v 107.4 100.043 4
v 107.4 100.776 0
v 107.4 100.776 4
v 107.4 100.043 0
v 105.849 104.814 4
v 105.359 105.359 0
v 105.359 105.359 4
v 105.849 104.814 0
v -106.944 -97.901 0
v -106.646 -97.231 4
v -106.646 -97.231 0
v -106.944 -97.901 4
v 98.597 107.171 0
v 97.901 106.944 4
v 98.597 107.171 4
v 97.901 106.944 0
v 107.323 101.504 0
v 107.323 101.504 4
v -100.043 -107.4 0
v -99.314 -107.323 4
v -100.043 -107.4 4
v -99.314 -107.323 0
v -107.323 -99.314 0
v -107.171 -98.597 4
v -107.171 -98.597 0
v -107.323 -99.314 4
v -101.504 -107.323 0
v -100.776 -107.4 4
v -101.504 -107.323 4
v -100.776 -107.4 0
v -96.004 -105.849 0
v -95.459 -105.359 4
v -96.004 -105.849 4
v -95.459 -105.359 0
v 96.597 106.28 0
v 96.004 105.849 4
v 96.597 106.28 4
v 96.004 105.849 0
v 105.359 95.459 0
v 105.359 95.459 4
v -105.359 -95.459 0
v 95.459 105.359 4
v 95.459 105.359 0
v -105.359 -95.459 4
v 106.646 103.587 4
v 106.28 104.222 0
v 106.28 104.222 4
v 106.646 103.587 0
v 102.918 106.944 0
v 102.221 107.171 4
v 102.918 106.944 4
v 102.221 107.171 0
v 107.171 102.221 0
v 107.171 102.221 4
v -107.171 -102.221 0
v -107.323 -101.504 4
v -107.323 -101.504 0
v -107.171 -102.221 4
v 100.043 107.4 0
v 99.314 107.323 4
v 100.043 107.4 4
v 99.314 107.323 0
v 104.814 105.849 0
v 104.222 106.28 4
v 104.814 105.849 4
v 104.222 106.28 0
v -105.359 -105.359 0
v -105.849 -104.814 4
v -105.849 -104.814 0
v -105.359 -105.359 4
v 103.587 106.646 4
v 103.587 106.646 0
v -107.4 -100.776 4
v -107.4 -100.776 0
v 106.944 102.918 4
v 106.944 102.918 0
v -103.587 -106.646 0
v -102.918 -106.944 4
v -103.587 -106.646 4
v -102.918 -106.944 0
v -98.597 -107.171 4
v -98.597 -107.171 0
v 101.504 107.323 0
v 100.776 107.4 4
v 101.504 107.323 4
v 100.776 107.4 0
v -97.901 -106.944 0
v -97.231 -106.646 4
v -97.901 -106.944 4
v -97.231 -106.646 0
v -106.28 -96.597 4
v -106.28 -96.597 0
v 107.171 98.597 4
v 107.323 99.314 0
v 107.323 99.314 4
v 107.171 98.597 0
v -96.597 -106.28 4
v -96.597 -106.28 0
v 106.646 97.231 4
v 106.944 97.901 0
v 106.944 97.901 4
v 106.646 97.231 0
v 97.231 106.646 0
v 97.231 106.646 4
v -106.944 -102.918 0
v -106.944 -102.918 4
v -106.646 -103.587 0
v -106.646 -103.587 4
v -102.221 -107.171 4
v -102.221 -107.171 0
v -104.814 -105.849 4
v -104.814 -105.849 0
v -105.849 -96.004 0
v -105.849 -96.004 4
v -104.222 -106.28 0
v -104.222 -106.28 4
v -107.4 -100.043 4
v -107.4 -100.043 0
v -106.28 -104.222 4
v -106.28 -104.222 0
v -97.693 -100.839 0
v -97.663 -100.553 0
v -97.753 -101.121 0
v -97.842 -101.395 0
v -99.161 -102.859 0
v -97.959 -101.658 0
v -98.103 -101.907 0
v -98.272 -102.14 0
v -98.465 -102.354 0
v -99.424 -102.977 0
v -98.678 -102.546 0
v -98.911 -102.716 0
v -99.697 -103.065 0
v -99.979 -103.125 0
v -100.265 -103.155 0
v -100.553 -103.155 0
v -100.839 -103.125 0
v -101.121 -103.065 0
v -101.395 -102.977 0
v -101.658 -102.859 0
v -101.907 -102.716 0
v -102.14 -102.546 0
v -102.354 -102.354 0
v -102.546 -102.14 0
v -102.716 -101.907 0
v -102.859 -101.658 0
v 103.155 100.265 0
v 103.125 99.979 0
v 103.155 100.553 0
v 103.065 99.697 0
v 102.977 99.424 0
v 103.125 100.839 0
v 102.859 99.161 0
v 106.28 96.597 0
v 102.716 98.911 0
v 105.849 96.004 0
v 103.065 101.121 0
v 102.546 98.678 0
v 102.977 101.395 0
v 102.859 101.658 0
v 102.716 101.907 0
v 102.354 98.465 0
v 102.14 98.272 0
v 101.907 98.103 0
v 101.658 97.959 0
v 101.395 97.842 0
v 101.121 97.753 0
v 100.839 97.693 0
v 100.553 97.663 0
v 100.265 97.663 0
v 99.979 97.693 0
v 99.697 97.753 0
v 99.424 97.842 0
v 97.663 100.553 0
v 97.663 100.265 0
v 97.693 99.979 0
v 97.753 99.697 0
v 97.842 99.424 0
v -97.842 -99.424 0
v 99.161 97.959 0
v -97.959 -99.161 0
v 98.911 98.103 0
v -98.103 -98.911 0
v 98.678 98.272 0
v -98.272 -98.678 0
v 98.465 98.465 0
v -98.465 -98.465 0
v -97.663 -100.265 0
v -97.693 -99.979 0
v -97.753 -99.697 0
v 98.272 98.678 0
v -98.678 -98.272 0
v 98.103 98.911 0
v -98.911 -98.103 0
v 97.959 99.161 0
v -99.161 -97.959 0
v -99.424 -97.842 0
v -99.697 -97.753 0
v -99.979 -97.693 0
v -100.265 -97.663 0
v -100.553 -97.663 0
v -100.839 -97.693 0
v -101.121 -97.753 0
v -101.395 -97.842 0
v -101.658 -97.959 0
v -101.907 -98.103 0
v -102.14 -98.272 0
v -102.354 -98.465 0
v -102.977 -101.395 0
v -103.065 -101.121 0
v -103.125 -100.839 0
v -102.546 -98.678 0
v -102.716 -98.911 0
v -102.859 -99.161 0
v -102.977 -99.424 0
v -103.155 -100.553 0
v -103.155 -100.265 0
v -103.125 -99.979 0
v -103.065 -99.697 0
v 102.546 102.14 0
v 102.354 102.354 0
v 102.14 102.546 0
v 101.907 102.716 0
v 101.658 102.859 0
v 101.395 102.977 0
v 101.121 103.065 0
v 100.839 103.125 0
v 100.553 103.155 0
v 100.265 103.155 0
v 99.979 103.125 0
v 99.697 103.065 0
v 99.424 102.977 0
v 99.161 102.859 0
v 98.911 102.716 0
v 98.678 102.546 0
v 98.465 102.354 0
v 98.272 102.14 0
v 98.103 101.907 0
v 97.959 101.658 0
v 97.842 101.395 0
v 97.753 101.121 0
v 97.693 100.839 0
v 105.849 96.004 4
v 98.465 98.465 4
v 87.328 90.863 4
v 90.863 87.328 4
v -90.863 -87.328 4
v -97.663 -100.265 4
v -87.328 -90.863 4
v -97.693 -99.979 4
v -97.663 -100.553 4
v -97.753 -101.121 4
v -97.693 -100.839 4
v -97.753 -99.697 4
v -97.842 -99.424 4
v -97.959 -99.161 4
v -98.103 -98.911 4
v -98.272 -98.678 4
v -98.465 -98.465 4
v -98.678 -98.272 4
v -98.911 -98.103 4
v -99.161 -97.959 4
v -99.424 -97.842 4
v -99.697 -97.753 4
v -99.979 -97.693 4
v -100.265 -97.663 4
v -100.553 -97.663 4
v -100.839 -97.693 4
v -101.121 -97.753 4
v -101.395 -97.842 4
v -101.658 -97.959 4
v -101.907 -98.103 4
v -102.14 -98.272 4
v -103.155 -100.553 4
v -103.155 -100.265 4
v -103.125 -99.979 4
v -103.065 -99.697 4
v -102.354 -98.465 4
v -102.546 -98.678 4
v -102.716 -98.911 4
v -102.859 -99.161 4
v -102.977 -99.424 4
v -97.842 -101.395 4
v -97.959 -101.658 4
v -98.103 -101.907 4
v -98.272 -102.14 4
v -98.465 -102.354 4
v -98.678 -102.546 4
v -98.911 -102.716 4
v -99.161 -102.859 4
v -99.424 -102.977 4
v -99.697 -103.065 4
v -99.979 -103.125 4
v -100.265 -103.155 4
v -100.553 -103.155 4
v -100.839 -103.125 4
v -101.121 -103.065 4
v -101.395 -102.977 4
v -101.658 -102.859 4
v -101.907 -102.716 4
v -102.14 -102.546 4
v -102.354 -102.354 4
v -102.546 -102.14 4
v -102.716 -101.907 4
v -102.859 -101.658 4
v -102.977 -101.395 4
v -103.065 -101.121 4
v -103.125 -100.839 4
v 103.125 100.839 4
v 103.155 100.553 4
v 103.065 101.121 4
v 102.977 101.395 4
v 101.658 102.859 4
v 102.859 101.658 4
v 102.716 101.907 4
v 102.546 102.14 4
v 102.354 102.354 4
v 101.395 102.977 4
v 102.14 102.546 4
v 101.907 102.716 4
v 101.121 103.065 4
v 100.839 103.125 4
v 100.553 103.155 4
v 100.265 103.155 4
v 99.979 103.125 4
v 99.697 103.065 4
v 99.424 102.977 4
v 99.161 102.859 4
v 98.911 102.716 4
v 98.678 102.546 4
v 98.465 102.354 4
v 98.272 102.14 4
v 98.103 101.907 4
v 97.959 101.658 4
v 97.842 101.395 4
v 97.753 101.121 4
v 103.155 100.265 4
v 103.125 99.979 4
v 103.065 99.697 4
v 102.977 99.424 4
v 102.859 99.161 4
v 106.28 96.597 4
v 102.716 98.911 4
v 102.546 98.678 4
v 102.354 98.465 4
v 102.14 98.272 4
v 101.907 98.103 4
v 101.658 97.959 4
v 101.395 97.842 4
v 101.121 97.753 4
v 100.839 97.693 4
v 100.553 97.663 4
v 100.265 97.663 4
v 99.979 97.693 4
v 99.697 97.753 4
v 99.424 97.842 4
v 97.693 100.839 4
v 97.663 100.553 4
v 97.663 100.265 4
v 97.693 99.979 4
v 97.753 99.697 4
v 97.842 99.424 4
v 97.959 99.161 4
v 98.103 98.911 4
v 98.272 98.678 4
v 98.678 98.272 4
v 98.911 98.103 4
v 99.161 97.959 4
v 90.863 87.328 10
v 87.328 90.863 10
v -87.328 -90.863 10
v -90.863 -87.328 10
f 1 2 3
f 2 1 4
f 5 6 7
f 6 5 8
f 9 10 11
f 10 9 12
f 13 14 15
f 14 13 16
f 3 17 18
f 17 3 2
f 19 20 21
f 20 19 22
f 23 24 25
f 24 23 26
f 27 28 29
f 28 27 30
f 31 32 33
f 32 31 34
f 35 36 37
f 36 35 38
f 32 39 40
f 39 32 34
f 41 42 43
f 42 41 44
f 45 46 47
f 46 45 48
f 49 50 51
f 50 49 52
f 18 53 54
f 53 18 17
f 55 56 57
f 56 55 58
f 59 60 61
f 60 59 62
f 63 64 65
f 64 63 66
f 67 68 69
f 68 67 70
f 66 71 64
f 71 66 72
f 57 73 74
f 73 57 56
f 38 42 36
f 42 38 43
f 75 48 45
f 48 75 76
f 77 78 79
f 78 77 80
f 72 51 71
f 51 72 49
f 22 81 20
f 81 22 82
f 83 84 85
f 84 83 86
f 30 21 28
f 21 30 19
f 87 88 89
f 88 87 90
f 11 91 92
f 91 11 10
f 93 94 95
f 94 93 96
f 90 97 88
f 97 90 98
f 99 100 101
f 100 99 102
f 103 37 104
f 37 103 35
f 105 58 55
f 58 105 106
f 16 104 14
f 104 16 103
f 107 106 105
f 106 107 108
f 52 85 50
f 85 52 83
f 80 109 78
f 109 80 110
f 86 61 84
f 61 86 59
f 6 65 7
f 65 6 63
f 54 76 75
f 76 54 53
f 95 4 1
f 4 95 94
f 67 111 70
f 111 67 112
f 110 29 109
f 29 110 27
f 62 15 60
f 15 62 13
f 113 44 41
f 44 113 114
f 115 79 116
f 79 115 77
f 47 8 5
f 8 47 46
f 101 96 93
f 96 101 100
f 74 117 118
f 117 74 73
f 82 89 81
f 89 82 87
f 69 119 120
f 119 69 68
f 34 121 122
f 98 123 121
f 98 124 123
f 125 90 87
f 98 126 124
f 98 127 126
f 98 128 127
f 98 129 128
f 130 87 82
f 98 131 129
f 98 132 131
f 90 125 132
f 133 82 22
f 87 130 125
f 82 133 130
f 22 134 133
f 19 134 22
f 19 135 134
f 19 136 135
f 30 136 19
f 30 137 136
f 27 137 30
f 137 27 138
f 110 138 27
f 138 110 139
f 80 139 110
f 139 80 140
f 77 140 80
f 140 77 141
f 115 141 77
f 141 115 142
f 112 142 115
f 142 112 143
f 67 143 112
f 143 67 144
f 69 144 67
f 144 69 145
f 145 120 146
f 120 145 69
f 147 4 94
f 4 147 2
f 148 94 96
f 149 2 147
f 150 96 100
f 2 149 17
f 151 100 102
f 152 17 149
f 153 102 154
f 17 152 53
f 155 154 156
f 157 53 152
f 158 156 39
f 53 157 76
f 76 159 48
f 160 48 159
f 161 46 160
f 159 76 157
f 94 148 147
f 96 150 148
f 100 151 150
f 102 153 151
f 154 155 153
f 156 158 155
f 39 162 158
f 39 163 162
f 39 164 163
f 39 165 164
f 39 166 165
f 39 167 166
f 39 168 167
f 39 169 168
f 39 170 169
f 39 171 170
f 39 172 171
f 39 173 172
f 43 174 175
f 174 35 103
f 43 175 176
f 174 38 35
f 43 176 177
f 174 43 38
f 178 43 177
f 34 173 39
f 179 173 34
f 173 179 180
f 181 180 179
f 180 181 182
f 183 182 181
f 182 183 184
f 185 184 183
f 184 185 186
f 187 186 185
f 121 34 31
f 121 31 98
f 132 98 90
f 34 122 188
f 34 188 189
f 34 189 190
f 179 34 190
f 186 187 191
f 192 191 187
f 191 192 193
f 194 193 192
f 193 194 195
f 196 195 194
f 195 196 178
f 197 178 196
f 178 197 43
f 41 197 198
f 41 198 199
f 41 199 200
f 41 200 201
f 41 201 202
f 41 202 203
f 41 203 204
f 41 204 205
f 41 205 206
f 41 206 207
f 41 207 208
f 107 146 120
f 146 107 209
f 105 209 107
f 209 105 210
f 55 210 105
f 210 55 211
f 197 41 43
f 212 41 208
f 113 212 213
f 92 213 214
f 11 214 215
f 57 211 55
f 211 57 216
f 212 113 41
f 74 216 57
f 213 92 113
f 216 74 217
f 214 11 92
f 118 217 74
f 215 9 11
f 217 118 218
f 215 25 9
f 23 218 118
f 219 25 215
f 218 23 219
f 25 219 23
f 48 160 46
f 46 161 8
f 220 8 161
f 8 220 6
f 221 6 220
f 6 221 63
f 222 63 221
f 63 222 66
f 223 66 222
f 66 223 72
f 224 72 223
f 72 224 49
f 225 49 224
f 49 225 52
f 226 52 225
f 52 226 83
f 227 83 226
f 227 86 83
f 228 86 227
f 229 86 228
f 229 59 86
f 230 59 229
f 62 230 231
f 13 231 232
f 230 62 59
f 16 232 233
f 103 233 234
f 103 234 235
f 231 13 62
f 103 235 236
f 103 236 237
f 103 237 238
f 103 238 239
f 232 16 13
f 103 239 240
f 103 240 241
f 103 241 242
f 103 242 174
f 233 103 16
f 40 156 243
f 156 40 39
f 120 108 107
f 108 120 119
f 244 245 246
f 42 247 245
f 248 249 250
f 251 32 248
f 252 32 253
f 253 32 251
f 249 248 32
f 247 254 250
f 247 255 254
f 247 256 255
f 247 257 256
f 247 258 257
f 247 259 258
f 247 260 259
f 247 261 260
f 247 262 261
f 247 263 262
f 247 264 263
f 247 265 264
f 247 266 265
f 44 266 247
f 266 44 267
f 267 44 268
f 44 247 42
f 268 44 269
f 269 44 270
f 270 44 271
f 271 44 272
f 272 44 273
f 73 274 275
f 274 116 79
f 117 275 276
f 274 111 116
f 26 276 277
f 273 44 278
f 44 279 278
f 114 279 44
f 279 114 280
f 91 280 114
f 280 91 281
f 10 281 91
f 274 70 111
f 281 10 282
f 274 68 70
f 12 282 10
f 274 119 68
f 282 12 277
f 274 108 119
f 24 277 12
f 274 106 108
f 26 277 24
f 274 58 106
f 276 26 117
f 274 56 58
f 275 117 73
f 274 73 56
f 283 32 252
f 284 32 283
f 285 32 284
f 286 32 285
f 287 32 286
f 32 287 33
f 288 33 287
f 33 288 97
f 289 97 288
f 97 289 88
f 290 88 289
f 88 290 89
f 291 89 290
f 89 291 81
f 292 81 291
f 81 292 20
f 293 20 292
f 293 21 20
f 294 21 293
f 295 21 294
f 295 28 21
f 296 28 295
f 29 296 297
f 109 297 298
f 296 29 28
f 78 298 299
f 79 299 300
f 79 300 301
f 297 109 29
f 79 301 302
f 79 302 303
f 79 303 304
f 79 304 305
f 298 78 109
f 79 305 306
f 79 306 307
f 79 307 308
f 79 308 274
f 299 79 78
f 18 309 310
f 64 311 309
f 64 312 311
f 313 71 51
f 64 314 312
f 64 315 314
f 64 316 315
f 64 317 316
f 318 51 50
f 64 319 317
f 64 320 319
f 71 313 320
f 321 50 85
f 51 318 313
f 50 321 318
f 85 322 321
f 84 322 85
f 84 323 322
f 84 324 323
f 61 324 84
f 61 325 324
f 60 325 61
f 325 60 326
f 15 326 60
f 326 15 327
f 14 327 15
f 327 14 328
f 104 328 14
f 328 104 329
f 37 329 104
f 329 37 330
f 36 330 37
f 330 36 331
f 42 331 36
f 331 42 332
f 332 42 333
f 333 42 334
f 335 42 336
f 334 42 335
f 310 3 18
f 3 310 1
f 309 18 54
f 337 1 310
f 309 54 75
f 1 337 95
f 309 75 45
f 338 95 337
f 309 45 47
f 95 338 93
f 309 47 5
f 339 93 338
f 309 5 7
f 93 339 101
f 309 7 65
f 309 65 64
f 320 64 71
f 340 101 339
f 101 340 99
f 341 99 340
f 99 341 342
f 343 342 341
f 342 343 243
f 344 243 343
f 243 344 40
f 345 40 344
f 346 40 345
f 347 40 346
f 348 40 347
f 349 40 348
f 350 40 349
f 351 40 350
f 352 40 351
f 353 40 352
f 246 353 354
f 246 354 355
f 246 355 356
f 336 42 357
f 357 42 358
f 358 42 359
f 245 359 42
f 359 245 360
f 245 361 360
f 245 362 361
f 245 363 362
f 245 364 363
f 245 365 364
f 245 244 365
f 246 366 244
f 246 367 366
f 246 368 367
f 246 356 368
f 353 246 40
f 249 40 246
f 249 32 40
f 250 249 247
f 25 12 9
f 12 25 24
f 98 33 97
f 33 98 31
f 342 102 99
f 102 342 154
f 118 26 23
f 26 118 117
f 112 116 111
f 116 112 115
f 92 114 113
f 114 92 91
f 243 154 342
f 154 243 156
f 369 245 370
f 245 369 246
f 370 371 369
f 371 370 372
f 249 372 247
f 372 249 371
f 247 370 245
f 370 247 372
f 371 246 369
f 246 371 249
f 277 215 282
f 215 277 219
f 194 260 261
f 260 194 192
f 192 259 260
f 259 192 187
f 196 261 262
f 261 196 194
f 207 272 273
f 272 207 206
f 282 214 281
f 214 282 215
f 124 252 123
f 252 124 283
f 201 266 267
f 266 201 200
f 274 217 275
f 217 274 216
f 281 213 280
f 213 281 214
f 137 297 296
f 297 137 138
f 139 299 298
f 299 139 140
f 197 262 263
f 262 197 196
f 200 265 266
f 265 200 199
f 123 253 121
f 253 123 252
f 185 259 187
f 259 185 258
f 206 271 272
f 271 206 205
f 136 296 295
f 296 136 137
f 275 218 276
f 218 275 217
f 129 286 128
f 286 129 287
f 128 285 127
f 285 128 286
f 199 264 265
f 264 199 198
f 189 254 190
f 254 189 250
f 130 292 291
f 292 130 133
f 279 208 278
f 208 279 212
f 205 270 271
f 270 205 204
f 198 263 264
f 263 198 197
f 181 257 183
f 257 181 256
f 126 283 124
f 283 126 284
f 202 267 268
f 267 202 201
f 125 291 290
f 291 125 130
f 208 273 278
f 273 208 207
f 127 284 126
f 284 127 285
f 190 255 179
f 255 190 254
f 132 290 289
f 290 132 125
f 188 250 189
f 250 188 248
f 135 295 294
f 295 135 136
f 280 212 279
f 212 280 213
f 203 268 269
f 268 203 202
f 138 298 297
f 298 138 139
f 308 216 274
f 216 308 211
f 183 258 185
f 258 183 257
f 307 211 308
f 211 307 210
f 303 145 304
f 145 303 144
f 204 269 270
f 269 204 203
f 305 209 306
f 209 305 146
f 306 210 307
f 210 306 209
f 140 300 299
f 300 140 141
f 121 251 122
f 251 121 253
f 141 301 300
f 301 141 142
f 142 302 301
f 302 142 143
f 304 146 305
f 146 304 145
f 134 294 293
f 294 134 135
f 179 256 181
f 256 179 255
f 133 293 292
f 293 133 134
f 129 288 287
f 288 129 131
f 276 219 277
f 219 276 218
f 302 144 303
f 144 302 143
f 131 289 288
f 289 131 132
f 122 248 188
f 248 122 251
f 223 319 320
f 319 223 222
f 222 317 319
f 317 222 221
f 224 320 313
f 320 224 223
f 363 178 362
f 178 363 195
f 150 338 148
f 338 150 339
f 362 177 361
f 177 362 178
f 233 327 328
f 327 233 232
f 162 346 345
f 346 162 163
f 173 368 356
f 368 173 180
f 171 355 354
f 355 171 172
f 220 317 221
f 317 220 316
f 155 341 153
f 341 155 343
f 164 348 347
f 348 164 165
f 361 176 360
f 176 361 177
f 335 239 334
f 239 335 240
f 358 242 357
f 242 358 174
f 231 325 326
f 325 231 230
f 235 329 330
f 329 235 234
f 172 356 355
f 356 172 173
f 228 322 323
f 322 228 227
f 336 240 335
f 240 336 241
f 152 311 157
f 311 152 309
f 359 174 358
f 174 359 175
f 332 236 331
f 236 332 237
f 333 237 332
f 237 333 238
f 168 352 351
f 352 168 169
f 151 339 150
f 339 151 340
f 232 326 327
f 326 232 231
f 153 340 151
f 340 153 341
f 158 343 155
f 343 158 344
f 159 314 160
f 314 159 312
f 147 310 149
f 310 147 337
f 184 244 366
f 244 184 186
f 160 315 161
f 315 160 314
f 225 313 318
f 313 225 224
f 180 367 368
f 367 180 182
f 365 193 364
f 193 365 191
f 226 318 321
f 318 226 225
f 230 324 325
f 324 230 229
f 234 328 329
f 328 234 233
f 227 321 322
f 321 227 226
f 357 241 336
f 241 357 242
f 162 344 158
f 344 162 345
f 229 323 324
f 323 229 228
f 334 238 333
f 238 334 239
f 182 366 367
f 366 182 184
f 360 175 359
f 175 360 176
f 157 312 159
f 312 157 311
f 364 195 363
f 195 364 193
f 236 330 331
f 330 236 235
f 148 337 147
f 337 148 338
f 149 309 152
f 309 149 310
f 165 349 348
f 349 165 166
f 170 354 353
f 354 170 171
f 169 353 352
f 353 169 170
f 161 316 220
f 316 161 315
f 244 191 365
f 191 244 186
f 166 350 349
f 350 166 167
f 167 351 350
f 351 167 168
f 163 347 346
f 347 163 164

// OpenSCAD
// Longer leg brace: replaces the 20 cm metal strips between the brace hub
// and each leg, to push the legs further out for the 6 m pole. Same idea as
// the metal ones (a flat strip with a bolt hole at each end), but thicker,
// with a stiffening rib along the outside so it doesn't bend.
// Laid corner to corner so it fits the 22 x 22 cm bed (longest that fits:
// 28.4 cm hole to hole, about 2.5 mm in from each bed edge). Print 6: two per leg, rib facing up, PETG
// (PLA goes soft in hot sun), 4 walls, 40% infill, no brim.
// Fit with the flat side facing the hub arm / leg, rib on the outside.

hole_to_hole = 284;  // centre of one bolt hole to the other (284 = most that fits)
width        = 14;   // strip width
plate        = 4;    // flat strip thickness
rib          = 6;    // extra height of the stiffening rib
rib_width    = 5;
rib_gap      = 16;   // rib stops this far from each hole (room for the bolt head)
hole         = 5.5;  // bolt holes (M5)

brim        = 0;    // no brim: the long flat strip holds well on its own
brim_height = 0.4;
$fn = 60;

module brace() {
  difference() {
    union() {
      hull() for (x = [0, hole_to_hole]) translate([x, 0, 0]) cylinder(h = plate, d = width);
      translate([rib_gap, -rib_width / 2, 0]) cube([hole_to_hole - 2 * rib_gap, rib_width, plate + rib]);
    }
    for (x = [0, hole_to_hole]) translate([x, 0, -1]) cylinder(h = plate + rib + 2, d = hole);
  }
}

// Corner to corner on the bed, centred.
rotate([0, 0, 45]) translate([-hole_to_hole / 2, 0, 0]) {
  brace();
  if (brim > 0)
    linear_extrude(height = brim_height)
      difference() {
        offset(r = brim) projection(cut = true) translate([0, 0, -0.1]) brace();
        for (x = [0, hole_to_hole]) translate([x, 0]) circle(d = hole);
      }
}
// Bed outline check (not printed): uncomment to see it on the 220 x 220 bed.
// %translate([-110, -110, -1]) cube([220, 220, 1]);
